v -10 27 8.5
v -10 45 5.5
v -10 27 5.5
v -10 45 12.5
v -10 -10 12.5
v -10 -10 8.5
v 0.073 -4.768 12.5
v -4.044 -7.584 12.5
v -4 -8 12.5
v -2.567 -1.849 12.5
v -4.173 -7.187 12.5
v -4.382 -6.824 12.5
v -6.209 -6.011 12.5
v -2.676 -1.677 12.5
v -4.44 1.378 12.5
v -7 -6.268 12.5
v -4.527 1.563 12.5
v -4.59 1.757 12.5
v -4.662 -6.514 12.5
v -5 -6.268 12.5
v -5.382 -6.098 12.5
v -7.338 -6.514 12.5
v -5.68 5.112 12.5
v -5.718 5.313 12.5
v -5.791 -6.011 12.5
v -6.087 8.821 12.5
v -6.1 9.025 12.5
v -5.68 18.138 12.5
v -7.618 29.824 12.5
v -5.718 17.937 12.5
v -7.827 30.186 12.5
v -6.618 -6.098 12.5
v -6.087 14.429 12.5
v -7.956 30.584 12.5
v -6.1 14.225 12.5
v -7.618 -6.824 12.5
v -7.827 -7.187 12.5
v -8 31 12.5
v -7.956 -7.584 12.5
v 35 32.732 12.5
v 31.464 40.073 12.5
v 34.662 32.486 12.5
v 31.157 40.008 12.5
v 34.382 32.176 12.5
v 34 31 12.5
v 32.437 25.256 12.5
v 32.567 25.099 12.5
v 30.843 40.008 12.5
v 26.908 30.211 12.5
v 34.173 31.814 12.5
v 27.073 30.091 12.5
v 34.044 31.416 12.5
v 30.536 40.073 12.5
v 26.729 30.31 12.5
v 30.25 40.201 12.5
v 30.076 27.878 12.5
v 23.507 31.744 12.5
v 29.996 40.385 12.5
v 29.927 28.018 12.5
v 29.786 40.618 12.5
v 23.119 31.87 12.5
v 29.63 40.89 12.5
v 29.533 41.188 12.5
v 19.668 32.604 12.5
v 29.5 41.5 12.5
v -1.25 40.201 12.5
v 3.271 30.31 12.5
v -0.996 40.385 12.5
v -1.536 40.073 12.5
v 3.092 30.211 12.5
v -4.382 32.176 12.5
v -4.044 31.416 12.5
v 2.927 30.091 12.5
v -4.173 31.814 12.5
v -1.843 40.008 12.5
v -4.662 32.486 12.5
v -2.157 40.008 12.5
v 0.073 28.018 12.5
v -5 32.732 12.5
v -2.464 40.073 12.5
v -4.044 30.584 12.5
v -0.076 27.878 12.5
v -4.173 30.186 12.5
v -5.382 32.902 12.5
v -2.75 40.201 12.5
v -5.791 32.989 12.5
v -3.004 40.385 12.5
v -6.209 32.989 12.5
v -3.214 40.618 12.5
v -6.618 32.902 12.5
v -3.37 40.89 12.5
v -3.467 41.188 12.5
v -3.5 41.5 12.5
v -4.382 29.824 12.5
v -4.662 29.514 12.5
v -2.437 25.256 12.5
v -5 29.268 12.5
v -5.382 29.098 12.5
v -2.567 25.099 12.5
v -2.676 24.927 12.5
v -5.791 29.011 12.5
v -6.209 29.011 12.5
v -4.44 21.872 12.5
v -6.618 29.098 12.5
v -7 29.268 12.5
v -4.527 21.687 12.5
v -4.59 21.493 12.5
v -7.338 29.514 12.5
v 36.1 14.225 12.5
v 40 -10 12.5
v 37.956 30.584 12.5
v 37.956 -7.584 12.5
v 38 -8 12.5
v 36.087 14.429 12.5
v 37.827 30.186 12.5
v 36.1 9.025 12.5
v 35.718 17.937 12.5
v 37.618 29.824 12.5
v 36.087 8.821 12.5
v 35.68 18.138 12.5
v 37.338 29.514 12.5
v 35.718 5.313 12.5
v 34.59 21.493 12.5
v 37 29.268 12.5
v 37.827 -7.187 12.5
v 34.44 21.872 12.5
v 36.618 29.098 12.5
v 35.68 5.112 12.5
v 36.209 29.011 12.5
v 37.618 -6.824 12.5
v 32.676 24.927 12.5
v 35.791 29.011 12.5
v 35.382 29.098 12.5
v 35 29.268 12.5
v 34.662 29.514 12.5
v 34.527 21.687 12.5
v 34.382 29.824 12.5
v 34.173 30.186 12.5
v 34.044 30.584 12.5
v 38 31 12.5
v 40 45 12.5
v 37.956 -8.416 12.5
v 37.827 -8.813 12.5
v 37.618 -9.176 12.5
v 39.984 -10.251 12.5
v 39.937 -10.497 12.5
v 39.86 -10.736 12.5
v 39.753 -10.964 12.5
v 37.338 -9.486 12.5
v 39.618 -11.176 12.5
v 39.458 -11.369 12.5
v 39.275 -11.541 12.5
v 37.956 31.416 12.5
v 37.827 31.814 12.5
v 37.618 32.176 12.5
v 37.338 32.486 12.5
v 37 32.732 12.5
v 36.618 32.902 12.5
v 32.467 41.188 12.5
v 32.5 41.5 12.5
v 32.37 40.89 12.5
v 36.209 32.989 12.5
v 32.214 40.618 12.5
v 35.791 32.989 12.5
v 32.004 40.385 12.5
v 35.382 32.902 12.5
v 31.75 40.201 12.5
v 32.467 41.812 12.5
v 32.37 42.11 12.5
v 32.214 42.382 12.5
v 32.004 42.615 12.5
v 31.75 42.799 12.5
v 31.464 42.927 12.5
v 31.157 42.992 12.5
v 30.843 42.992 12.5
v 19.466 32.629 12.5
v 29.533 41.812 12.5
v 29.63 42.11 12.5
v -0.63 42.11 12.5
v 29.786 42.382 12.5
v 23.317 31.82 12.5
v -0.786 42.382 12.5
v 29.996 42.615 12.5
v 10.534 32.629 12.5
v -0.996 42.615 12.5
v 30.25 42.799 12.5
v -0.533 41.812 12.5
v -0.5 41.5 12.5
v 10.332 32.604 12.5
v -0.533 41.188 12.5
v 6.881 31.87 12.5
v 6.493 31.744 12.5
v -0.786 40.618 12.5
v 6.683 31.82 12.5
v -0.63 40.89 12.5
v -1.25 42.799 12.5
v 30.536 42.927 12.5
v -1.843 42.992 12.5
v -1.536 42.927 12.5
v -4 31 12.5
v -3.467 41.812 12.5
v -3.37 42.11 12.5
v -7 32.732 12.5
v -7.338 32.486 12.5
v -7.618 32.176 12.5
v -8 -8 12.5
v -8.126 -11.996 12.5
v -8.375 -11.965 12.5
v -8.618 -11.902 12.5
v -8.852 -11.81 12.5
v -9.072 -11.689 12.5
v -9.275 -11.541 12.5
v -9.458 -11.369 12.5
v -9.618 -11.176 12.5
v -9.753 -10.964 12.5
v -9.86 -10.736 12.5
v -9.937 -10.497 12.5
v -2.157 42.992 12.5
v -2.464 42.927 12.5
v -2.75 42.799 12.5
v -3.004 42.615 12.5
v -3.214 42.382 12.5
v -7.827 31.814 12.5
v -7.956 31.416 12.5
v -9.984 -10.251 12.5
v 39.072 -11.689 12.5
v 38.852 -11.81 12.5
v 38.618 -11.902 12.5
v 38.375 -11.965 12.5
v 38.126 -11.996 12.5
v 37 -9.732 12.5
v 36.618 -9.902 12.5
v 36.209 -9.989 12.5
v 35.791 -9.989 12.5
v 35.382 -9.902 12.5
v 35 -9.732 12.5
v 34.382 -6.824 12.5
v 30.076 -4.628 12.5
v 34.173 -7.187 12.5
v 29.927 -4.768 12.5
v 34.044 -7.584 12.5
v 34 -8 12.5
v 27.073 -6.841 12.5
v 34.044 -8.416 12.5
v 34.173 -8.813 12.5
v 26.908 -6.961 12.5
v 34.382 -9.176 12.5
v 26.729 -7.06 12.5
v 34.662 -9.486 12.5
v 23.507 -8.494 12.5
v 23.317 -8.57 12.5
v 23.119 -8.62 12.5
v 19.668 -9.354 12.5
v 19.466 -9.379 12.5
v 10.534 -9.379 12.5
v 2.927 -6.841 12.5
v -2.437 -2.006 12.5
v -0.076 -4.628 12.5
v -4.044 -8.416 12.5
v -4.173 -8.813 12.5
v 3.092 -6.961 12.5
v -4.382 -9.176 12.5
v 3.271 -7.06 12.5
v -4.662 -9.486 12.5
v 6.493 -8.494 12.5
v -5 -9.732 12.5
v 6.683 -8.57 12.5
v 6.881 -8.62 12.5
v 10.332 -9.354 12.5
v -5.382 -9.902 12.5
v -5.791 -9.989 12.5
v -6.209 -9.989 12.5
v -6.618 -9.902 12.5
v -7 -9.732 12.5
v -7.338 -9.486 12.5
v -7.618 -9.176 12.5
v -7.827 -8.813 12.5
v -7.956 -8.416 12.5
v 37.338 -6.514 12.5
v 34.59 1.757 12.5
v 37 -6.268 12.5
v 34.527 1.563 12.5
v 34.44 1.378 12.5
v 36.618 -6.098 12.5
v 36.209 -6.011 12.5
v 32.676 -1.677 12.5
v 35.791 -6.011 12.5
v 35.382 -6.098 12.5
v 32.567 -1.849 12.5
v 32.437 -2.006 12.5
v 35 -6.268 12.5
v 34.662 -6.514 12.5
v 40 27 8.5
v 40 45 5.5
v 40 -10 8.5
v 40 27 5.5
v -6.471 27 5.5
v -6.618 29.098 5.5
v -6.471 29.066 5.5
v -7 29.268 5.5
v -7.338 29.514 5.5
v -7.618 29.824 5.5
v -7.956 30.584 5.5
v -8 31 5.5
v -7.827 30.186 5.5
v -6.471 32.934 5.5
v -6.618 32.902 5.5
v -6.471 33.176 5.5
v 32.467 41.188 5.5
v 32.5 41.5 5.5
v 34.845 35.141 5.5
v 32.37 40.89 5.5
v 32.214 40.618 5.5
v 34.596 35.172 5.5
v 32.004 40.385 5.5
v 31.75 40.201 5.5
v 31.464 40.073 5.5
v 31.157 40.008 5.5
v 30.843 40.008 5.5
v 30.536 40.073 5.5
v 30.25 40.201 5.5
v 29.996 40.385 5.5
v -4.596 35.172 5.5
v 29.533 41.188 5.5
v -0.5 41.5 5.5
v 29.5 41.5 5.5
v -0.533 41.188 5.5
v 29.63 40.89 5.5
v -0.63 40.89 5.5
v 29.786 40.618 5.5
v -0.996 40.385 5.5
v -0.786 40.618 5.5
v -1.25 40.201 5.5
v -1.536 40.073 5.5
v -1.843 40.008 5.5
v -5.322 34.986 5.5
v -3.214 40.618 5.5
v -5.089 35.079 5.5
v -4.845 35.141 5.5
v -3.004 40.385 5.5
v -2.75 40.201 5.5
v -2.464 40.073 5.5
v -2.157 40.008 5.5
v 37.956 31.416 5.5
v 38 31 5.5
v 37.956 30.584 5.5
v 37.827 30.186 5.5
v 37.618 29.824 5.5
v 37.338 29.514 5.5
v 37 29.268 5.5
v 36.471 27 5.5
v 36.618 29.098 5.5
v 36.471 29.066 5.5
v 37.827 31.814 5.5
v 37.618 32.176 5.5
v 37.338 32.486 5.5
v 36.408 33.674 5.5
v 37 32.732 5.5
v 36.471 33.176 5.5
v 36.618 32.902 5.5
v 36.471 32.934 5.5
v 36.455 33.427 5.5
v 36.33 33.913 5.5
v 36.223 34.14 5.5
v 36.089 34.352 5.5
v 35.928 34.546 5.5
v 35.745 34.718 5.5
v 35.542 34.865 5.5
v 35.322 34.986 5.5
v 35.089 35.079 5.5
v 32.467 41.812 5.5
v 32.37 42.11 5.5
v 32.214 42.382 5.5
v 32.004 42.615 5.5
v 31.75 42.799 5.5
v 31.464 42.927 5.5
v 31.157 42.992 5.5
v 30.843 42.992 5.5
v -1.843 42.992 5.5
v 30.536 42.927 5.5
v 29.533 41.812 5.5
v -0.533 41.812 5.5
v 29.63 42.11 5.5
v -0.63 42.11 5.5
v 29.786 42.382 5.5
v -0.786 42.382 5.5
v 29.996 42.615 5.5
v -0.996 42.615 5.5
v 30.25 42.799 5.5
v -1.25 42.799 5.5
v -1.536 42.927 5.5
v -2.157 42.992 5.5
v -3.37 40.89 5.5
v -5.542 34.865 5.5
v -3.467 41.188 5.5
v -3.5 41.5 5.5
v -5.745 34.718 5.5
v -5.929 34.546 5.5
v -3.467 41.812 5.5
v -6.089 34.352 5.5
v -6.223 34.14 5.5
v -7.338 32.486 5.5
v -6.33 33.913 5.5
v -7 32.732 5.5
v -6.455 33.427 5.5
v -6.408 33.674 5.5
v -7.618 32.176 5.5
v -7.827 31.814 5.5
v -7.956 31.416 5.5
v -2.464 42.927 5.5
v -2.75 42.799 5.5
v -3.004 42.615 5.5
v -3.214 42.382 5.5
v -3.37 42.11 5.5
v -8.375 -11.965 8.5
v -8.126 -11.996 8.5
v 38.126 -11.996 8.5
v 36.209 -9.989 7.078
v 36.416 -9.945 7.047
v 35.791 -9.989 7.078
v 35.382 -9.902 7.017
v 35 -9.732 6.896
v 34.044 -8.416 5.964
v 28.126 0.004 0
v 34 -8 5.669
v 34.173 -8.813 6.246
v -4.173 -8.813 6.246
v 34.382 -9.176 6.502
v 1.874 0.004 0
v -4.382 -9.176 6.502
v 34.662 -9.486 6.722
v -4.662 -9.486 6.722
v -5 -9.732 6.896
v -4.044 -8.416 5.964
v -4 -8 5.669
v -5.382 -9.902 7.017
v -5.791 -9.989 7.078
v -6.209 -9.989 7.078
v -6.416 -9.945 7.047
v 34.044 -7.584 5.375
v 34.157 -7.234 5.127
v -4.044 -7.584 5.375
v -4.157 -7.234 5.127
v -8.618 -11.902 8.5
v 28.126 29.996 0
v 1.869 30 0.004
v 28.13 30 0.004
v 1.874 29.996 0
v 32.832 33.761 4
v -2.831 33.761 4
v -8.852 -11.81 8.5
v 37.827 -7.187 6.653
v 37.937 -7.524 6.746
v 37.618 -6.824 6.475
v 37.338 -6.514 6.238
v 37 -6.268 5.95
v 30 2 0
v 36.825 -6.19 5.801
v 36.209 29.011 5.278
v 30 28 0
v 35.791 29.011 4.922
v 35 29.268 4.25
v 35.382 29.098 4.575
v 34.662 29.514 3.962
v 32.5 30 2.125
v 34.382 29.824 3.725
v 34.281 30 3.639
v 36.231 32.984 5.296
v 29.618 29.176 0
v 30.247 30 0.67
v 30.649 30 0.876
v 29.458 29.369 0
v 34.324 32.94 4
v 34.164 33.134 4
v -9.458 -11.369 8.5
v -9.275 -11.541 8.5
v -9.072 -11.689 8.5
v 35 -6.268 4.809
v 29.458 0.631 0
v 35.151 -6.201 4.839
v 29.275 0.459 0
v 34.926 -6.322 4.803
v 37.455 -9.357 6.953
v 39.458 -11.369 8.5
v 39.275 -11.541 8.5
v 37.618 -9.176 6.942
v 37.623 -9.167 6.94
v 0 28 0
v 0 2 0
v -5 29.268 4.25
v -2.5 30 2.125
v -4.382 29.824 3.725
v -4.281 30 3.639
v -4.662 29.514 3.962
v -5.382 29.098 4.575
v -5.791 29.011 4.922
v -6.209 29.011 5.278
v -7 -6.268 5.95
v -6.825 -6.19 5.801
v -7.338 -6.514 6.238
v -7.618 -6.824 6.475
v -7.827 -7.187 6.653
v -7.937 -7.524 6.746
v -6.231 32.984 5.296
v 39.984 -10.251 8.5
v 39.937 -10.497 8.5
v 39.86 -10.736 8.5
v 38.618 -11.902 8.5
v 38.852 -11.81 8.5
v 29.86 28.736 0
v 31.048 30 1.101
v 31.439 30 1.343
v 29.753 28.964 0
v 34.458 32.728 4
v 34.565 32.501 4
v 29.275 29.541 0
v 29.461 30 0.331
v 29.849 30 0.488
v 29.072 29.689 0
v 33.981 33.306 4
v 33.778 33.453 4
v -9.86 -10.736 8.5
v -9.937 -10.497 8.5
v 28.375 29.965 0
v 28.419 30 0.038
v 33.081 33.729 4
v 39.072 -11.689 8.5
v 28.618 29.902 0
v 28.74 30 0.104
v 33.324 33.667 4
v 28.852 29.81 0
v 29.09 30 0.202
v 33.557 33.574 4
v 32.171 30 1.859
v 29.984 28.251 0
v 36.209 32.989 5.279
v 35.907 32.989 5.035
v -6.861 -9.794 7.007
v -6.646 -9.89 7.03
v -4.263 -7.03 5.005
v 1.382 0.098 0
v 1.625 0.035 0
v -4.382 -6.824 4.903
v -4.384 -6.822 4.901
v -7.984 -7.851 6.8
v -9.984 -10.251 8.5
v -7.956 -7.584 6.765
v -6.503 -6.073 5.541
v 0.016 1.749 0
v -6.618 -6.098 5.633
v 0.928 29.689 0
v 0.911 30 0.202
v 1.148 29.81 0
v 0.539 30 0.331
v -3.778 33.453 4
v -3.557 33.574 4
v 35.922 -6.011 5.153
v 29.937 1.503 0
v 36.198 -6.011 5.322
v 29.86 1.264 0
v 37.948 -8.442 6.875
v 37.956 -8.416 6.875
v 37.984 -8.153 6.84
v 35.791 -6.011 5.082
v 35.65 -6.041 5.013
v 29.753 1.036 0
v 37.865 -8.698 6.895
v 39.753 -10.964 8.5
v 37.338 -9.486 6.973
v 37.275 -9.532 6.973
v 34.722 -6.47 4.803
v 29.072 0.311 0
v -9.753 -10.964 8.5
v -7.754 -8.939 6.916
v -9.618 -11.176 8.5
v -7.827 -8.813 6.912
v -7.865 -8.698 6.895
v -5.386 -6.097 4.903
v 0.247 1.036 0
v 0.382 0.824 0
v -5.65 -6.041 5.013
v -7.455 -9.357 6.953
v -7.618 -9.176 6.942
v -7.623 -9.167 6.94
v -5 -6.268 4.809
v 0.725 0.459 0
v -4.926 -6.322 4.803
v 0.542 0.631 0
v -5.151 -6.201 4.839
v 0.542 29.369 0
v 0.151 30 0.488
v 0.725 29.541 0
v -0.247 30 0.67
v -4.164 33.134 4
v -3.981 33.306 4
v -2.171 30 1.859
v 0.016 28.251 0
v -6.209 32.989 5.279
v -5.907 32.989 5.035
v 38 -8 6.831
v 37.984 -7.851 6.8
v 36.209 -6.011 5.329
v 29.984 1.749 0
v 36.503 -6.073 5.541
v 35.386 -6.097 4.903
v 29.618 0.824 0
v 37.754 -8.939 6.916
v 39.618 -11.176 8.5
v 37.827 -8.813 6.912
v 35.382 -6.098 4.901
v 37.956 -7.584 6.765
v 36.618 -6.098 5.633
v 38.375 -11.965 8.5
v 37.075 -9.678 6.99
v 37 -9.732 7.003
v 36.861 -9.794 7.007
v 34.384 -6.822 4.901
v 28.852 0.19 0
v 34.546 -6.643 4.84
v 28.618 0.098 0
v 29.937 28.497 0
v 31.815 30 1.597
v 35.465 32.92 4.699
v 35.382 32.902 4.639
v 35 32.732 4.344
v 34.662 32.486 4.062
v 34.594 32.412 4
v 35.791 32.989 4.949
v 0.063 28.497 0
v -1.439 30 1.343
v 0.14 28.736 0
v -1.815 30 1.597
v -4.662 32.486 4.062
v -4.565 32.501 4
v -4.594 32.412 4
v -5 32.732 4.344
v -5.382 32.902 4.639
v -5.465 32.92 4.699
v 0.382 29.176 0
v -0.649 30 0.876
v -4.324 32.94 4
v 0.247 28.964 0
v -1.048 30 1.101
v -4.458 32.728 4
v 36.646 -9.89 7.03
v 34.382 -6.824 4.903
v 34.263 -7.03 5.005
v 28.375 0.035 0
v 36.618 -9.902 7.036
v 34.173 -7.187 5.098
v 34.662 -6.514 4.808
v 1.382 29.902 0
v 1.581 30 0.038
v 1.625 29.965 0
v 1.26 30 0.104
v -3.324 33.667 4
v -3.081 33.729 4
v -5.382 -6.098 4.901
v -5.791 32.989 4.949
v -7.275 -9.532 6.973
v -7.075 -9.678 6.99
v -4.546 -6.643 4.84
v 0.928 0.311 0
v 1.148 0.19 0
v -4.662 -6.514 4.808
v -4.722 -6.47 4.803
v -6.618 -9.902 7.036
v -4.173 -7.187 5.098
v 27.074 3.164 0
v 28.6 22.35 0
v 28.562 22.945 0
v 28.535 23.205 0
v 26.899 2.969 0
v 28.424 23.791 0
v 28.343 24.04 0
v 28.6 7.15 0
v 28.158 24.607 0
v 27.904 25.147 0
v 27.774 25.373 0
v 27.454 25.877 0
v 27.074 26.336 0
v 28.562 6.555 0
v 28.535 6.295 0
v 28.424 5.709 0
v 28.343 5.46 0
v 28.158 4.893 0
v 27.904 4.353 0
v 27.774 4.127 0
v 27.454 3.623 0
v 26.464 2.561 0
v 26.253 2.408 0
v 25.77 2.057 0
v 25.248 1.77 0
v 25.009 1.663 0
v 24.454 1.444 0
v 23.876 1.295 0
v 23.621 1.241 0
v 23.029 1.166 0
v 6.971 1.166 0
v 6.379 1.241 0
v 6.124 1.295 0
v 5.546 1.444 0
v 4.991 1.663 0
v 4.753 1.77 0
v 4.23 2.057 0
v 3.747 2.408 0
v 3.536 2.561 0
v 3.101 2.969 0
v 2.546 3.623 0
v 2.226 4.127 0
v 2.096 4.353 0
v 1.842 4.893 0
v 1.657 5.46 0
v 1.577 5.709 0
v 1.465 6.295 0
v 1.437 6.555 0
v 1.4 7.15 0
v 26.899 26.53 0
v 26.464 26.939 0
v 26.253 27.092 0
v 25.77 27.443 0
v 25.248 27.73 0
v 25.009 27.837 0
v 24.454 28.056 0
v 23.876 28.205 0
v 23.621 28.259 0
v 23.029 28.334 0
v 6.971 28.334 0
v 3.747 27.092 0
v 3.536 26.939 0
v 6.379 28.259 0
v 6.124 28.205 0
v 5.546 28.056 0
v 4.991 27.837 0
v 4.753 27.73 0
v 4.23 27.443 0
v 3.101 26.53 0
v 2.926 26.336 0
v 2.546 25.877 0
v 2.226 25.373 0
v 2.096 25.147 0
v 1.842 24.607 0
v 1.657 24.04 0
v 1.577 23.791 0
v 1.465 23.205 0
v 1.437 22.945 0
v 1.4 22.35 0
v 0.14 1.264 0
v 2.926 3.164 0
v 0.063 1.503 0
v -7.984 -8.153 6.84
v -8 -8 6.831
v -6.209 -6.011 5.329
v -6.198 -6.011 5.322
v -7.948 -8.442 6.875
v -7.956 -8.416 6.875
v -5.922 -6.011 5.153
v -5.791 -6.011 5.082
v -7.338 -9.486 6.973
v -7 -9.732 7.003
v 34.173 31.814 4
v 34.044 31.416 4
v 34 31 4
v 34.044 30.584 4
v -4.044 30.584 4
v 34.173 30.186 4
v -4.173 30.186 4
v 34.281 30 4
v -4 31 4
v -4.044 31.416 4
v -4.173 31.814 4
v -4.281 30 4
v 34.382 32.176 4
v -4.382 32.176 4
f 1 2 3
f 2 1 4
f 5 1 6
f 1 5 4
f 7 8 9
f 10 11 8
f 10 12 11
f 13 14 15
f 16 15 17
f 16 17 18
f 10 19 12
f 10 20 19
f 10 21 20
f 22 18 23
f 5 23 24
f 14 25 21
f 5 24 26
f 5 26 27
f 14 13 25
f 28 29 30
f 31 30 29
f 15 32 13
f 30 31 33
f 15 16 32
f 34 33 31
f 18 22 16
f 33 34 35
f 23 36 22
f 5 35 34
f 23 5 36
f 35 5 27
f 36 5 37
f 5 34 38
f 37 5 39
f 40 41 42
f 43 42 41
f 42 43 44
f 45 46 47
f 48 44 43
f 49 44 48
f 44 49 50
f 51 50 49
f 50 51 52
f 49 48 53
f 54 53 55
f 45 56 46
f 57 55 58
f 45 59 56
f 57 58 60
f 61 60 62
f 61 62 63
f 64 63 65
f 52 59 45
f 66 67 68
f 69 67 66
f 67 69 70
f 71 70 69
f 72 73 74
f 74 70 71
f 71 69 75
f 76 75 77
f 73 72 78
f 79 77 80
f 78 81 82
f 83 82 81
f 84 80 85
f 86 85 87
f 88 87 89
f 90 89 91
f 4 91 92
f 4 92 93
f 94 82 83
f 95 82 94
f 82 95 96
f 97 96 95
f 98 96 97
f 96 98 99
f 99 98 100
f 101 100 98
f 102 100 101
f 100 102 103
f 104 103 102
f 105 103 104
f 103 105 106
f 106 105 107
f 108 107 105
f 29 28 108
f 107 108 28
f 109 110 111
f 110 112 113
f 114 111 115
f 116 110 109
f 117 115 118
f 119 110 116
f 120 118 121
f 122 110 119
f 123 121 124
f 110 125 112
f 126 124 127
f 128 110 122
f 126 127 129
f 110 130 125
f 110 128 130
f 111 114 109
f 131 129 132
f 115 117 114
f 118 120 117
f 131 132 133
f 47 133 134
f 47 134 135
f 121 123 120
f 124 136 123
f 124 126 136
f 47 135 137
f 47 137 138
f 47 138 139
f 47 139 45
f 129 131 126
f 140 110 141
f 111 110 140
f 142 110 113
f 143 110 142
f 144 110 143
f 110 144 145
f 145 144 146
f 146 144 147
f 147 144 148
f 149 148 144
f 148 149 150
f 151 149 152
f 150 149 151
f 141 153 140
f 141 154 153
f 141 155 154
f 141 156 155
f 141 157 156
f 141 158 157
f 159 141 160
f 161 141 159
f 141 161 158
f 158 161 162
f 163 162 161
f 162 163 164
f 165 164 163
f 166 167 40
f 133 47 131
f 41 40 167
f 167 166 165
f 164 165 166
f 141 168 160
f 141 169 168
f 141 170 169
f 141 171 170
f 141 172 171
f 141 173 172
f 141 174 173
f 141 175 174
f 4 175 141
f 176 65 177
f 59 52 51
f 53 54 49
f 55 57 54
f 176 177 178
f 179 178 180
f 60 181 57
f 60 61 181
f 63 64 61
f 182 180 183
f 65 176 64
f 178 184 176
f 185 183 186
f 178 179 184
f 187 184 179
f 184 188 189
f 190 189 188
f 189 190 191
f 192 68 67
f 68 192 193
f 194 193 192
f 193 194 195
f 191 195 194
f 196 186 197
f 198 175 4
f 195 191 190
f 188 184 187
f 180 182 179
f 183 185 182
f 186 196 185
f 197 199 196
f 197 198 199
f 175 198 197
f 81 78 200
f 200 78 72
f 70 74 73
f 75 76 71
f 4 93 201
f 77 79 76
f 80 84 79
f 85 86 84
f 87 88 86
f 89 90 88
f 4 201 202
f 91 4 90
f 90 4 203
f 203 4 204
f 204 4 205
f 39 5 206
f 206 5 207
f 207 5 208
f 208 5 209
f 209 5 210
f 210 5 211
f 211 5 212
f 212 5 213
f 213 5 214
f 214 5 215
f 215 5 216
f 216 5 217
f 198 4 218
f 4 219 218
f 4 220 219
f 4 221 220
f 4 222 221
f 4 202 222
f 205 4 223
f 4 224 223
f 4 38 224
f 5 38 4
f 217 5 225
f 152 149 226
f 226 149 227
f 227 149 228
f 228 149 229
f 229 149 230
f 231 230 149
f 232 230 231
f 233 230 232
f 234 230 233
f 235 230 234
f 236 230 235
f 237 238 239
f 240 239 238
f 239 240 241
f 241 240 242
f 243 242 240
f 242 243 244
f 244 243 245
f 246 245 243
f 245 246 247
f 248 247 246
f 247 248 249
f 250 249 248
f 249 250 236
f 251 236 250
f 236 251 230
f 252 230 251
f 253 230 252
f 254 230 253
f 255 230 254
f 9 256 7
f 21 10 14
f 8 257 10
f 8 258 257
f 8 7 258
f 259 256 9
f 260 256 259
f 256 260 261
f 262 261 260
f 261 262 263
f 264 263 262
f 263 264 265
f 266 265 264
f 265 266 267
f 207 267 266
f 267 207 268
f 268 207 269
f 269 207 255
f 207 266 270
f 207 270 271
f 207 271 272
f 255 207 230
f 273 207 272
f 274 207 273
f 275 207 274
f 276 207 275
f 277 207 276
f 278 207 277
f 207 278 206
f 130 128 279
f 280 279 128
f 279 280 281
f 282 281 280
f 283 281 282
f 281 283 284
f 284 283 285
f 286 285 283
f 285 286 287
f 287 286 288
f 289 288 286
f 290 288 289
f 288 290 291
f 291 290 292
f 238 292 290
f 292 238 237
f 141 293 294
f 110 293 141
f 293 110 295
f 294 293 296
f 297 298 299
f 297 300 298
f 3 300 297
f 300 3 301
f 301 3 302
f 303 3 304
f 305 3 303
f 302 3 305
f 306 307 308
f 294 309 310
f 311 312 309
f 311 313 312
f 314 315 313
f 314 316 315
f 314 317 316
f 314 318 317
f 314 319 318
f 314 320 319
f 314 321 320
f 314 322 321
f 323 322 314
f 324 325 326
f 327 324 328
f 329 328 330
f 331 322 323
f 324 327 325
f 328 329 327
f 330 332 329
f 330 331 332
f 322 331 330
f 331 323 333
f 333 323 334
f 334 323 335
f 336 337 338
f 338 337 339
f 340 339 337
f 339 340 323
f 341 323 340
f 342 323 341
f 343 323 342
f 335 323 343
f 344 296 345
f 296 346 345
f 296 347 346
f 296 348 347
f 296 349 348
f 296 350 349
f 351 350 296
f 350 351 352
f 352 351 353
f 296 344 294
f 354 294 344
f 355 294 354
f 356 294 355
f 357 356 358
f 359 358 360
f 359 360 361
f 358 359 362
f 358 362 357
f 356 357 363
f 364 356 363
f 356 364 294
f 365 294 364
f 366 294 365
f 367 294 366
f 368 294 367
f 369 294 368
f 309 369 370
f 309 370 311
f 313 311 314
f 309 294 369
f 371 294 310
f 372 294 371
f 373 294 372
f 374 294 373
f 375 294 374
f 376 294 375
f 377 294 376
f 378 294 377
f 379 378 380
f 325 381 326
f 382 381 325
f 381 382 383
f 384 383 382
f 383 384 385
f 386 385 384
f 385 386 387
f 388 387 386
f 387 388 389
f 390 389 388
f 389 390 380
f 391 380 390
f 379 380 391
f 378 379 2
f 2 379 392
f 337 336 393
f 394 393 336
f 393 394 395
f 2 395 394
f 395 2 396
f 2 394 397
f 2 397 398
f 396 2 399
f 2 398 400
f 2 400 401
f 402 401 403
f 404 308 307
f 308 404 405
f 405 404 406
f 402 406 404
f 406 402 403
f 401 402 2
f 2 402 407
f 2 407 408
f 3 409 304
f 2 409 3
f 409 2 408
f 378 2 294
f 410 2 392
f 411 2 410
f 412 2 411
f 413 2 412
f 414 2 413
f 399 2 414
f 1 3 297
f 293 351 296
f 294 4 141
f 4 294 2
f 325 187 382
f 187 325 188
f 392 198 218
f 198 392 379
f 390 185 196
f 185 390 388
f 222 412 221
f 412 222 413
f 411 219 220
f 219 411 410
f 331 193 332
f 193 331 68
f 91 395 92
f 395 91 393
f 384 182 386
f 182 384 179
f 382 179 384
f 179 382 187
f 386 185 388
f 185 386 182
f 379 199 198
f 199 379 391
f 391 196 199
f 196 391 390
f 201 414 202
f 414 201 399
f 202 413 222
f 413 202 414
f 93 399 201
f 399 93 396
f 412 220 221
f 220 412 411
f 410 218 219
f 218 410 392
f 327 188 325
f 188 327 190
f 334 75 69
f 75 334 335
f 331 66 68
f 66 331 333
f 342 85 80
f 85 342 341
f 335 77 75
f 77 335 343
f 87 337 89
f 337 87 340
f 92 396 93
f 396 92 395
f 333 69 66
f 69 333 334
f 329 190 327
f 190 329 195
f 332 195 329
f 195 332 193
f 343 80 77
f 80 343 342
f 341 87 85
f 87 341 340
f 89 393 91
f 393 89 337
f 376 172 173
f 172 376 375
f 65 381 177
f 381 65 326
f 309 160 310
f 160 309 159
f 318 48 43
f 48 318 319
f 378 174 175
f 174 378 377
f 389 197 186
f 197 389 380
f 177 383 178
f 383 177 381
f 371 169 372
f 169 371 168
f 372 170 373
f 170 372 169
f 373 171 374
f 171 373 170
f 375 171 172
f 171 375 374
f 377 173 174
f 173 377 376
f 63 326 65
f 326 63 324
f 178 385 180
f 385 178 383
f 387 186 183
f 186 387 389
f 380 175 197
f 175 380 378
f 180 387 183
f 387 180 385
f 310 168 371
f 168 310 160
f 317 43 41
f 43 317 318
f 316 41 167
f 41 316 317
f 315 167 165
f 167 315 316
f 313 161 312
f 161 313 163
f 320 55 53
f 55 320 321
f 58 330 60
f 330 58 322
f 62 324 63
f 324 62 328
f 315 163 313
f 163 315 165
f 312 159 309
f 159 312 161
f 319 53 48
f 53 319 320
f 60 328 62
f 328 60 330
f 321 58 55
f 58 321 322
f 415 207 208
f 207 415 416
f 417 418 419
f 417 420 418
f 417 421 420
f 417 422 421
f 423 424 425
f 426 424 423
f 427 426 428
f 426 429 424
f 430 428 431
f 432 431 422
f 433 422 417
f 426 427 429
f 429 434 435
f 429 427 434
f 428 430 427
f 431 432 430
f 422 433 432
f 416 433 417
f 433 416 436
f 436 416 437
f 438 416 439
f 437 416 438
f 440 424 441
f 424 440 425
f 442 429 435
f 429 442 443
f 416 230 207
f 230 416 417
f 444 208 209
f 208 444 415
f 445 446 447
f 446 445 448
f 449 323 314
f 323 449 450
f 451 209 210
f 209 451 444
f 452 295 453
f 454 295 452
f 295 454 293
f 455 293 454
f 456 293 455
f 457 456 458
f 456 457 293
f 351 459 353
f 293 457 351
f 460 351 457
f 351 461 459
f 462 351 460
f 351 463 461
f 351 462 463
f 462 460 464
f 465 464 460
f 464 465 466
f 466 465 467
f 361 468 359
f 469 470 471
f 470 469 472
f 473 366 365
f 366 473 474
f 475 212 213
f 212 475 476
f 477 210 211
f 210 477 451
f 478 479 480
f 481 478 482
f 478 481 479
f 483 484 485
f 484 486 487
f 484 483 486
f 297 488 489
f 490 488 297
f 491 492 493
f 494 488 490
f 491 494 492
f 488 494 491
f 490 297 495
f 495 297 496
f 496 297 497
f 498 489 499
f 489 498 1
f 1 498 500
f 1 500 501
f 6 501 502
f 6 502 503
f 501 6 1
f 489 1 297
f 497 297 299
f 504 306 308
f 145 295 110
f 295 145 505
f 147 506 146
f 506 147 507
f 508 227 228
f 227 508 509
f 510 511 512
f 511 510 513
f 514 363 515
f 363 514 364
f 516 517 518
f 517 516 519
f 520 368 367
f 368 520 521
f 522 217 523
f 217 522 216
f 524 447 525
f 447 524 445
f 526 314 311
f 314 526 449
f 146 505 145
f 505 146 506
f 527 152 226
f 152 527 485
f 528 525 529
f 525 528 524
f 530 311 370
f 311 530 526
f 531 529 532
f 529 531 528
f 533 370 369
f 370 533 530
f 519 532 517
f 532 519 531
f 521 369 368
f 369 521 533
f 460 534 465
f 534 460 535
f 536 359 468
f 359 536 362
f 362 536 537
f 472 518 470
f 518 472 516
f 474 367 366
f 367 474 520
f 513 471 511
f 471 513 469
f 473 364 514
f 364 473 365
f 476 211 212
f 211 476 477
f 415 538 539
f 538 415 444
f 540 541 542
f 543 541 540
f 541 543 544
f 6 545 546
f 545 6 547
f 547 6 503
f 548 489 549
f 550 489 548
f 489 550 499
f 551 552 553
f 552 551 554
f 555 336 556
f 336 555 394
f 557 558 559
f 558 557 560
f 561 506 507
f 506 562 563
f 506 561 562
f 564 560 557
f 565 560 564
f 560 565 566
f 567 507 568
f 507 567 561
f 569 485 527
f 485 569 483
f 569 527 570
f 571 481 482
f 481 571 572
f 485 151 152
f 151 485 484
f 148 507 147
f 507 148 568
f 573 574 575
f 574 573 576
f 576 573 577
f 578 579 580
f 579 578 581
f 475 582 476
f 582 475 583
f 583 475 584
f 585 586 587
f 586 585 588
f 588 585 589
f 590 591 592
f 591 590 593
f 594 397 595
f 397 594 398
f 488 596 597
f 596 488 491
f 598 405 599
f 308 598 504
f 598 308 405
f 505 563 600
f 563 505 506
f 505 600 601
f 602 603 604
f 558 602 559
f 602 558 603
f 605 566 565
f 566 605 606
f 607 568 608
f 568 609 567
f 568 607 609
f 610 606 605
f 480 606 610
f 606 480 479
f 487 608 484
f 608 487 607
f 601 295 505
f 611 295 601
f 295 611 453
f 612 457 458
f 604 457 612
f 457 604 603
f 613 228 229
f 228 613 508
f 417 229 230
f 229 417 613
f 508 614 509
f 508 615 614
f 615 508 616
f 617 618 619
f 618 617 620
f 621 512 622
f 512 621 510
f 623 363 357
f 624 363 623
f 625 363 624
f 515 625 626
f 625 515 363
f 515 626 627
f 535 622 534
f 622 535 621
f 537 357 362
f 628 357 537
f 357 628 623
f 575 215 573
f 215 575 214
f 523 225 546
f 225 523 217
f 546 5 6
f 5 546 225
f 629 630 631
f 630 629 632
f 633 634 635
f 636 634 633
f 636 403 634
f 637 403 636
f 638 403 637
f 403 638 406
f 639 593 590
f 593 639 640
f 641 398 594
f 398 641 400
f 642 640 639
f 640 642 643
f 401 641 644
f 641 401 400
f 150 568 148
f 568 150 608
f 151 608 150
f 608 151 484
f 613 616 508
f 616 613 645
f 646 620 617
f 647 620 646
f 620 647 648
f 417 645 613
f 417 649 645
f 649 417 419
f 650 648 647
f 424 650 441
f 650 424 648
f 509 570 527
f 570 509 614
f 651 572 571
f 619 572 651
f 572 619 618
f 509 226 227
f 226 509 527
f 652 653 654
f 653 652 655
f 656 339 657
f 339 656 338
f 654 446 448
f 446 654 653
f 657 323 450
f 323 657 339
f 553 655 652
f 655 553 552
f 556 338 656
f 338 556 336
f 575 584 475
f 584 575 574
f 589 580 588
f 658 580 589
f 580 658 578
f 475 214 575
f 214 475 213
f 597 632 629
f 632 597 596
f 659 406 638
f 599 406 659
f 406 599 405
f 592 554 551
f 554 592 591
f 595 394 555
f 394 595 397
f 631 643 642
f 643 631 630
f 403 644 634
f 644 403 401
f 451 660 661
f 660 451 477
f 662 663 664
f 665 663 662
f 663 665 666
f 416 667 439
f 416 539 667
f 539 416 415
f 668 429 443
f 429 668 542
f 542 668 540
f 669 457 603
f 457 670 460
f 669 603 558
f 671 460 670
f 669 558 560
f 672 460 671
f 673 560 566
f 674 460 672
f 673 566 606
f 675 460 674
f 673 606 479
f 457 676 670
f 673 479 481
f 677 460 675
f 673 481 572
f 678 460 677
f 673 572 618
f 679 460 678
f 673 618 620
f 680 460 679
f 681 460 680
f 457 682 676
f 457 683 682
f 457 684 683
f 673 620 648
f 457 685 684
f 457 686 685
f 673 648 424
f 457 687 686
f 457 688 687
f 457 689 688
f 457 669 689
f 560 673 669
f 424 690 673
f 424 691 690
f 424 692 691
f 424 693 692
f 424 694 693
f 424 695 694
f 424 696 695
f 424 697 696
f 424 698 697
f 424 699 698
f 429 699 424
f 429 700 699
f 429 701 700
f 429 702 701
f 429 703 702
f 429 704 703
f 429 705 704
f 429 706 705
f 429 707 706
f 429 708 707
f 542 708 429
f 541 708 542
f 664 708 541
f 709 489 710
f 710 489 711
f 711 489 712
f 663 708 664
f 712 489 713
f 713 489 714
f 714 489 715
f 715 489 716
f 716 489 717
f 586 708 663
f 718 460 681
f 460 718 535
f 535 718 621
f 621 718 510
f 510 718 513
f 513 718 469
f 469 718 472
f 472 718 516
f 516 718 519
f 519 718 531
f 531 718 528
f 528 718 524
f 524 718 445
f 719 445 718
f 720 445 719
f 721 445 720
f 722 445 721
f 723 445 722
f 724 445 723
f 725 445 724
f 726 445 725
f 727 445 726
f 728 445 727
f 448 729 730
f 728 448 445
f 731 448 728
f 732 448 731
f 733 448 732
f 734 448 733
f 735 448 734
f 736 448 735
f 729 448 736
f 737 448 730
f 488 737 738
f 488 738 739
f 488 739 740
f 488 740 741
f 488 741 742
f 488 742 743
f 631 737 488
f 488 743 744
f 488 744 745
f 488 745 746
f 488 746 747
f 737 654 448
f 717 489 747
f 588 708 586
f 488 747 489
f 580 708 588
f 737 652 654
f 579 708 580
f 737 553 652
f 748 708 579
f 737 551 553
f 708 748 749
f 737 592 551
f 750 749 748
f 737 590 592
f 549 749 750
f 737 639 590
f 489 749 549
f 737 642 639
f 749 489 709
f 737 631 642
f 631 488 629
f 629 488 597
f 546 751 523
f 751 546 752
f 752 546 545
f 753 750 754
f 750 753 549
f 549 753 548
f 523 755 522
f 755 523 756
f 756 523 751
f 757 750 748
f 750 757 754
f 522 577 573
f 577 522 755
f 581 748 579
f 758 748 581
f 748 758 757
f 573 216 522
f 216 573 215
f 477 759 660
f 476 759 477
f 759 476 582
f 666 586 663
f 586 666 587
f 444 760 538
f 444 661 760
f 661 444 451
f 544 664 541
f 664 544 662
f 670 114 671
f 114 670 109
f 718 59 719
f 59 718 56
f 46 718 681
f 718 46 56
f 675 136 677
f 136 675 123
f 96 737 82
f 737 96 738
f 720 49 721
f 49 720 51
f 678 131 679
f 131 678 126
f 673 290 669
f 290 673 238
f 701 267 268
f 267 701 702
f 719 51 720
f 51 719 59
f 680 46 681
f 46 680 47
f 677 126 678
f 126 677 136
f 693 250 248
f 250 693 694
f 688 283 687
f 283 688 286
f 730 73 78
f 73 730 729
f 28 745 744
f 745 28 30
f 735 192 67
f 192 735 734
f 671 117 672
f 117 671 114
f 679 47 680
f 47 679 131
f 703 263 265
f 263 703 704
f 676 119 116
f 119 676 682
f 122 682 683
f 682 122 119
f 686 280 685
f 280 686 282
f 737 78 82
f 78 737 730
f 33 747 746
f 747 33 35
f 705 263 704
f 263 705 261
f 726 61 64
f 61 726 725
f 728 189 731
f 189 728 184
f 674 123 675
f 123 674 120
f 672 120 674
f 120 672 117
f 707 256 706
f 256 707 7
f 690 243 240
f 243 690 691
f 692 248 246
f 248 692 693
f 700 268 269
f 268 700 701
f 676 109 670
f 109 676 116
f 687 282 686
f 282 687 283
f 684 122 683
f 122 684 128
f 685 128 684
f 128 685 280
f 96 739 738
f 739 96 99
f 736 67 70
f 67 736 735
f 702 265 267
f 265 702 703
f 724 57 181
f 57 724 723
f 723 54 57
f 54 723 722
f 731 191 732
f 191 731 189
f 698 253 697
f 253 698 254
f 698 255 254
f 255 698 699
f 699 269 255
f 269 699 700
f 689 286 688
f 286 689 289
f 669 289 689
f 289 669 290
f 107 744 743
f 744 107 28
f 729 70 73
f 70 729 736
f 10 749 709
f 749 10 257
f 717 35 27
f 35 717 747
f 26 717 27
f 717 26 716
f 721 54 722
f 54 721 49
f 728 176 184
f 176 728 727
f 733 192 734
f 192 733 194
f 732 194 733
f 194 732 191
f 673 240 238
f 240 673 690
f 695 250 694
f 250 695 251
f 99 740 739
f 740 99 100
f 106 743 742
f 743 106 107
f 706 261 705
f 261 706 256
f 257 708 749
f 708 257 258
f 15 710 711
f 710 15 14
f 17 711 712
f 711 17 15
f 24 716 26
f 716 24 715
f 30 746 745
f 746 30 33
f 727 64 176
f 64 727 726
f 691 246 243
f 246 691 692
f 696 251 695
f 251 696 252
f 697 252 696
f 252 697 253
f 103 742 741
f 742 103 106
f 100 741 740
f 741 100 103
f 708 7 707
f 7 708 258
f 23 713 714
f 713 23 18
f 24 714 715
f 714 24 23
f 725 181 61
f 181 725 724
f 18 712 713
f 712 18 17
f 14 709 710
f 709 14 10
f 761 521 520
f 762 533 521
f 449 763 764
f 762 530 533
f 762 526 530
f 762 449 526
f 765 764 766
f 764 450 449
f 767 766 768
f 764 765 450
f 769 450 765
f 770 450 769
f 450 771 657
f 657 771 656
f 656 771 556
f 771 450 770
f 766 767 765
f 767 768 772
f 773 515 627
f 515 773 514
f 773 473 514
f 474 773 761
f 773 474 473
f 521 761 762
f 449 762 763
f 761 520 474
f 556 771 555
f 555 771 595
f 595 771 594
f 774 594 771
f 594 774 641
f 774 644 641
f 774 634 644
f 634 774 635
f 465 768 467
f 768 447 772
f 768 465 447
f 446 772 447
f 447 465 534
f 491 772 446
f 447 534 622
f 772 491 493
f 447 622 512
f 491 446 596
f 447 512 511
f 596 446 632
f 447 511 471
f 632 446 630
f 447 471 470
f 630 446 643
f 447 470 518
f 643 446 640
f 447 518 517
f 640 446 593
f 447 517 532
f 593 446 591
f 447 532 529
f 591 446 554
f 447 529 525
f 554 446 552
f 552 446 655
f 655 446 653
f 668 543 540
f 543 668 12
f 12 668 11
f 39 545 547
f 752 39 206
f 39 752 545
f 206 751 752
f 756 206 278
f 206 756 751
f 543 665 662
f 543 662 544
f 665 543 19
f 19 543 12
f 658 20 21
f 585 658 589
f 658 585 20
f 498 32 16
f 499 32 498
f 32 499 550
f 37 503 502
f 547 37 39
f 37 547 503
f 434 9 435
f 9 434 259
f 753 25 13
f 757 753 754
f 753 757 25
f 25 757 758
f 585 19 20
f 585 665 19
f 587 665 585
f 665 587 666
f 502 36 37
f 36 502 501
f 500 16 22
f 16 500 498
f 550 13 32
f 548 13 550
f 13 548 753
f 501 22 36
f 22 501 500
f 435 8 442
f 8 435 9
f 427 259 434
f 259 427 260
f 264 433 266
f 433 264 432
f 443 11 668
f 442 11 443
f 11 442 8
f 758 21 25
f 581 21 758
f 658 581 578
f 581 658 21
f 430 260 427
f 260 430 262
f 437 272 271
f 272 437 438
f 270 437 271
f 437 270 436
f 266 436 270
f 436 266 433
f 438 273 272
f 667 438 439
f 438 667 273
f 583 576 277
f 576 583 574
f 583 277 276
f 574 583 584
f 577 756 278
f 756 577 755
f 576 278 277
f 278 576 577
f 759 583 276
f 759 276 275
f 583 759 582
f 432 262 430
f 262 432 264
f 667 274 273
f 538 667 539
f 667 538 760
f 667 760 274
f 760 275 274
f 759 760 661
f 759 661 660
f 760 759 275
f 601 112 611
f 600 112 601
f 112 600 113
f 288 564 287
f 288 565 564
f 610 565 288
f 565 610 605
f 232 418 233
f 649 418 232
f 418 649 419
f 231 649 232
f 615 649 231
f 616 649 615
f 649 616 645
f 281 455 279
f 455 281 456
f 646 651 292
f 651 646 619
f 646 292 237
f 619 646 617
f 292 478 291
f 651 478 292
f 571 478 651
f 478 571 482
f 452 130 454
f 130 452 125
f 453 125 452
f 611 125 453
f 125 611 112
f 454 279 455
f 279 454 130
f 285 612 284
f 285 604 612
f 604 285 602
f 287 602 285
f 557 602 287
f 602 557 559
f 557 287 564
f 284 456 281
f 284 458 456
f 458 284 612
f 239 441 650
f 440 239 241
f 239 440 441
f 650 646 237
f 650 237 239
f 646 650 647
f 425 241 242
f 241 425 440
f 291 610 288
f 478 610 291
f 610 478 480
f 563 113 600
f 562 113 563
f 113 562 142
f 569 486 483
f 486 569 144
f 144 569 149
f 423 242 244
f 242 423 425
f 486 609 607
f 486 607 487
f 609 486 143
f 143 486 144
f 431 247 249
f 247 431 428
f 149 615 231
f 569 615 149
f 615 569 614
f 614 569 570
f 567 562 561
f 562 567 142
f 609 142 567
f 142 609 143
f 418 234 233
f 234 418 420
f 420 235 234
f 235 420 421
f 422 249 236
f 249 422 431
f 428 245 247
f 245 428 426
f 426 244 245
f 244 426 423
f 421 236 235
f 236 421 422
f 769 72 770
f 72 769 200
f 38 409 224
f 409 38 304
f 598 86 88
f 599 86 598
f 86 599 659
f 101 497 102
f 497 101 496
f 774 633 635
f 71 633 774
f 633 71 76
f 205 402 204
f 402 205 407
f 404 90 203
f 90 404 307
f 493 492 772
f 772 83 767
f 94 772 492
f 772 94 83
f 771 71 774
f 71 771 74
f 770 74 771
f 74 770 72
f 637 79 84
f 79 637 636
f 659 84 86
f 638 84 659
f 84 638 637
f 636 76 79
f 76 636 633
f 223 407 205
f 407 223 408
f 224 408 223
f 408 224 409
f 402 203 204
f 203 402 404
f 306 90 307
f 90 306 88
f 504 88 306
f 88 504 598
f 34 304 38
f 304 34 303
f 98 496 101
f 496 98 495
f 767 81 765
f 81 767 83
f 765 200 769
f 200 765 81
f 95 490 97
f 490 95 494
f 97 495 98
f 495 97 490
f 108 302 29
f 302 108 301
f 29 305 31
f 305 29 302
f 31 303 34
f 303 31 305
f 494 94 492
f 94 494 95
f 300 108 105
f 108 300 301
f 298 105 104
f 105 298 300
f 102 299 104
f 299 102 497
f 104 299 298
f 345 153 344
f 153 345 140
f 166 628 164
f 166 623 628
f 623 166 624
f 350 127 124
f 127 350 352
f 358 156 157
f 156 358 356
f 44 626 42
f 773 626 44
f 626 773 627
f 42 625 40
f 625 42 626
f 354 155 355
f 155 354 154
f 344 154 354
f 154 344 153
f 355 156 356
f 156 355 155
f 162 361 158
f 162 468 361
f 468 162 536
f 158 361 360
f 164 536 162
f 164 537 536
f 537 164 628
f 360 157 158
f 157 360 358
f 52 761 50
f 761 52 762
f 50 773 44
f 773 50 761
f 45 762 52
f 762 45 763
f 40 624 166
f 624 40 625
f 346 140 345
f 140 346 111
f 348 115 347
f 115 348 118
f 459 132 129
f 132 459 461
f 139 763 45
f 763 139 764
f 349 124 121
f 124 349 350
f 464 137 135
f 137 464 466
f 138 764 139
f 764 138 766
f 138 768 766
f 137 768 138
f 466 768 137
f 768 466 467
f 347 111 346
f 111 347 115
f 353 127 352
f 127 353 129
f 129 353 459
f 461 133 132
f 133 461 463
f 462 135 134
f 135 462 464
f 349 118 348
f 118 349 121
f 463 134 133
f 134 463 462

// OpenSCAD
// file: measurement.scad
use <Write.scad>

// orientation = orientation of measurement line.  Values {"horizontal","vertical"}
// view = side of object.  Values {"front","left","right","back","top","bottom"}
// length = length of measurement
// text = measurement name (keep short)
// textpos = position of text above or below the line.  Values {"above","below"}
module measurement(orientation,view,length,text,textpos="below",text_size = 2,line_thickness=.15)
{
	if(orientation == "horizontal")
	{
		if(view == "front")
		{
			measurement_line(length,text,textpos,text_size,line_thickness);
		}
		else if(view == "back")
		{
			translate([length,0,0])
			rotate([0,0,180])
			measurement_line(length,text,textpos,text_size,line_thickness);
		}
		else if(view == "left")
		{
			translate([0,length,0])
			rotate([0,0,-90])
			measurement_line(length,text,textpos,text_size,line_thickness);
		}
		else if(view == "right")
		{
			rotate([0,0,90])
			measurement_line(length,text,textpos,text_size,line_thickness);
		}
		else if(view == "top")
		{
			rotate([-90,0,0])
			measurement_line(length,text,textpos,text_size,line_thickness);
		}
		else if(view == "bottom")
		{
			rotate([90,0,0])
			measurement_line(length,text,textpos,text_size,line_thickness);
		}
	}
	else if(orientation == "vertical")
	{
		if(view == "front")
		{
			rotate([0,-90,0])
			measurement_line(length,text,textpos,text_size,line_thickness);
		}
		else if(view == "back")
		{
			rotate([0,-90,180])
			measurement_line(length,text,textpos,text_size,line_thickness);
		}
		else if(view == "left")
		{
			rotate([0,-90,-90])
			measurement_line(length,text,textpos,text_size,line_thickness);
		}
		else if(view == "right")
		{
			rotate([0,-90,90])
			measurement_line(length,text,textpos,text_size,line_thickness);
		}
		else if(view == "top")
		{
			rotate([-90,0,90])
			measurement_line(length,text,textpos,text_size,line_thickness);
		}
		else if(view == "bottom")
		{
			translate([0,length,0])
			rotate([90,0,-90])
			measurement_line(length,text,textpos,text_size,line_thickness);
		}
	}
}

module measurement_line(length,text,textpos,text_size,line_thickness)
{
	color("Black")
	{
		cube([length,line_thickness,line_thickness]);
		translate([0,0,-text_size-.5]) 
			cube([line_thickness,line_thickness,text_size*2+1]);
		translate([length-line_thickness,0,-text_size-.5]) 
			cube([line_thickness,line_thickness,text_size*2+1]);

	if(textpos == "above")
	{
		translate([length/2,0,text_size]) rotate([90,0,0]) 
			write(str(text,"=", length),t=text_size,h=2,center=true);
	}
	else
	{
		translate([length/2,0,-text_size]) rotate([90,0,0]) 
			write(str(text,"=", length),t=text_size,h=2,center=true);
	}
	}
}
// main file
fan_size = 50;
fan_hole_size = 4;
fan_offset = 8.5;
fan_offset_y = 8;

chimera_size = 30;

wall_thickness = 2;

$fn=30;

use <measurement.scad>

module round_round_edges(size, radius)
{
    $fn=50;
    
    msize = [size[0]-radius*2, size[1]-radius*2, size[2]-radius*2];
    
    translate([radius, radius, radius])
    minkowski() {
        cube(size=[msize[0], msize[1], msize[2]]);
        sphere(r=radius);
    }
}

module cube_round_corners(size, radius) {
    $fn=50;
    
    msize = [size[0]-radius*2, size[1]-radius*2, size[2]];
    mheight = msize[2]-radius < 0 ? 1 : msize[2];
    mcheight = msize[2]-radius < 0 ? msize[2] : msize[2];
    
    translate([radius, radius, 0])
    minkowski() {
        cube(size=[msize[0], msize[1], 1]);
        cylinder(r=radius, h=mcheight);
    }
}

// chimera mount
difference() {
    union() {
        hull() {
            cube_round_corners([chimera_size, chimera_size, 3], 2);
            
            translate([-(fan_size-chimera_size)/2, -(fan_size-chimera_size)+fan_offset_y, fan_offset]) {
                cube_round_corners([fan_size, fan_size, 3], 2);
            }
        }
        
        translate([-25+chimera_size/2, chimera_size-3, 5.5]) {
            difference() {
                cube([50, 18, 7]);
                translate([8, 14.5, -1]) {
                    cylinder(h=9, r=1.5);
                }
                translate([41, 14.5, -1]) {
                    cylinder(h=9, r=1.5);
                }
            }
        }
    }
    
    hull() {
        translate([wall_thickness, wall_thickness, -1]) {
            cube_round_corners([chimera_size-wall_thickness*2, chimera_size-wall_thickness*2, 5], 5);
        }
        
        translate([(fan_size-chimera_size)/2+5, (fan_size-chimera_size)/2, 19]) {
            cylinder(r=fan_size/2, h=5);
        }
    }
    
    // remove everything that wouldn't fit under 
    // the extruder parts to see if it actually fits
    translate([-25+chimera_size/2, chimera_size+6, -1]) {
        cube([50, 9, 6.49]);
    }
    translate([-25+chimera_size/2, chimera_size, -1]) {
        cube([50, 6, 5]);
    }
    
    // Screw holes for fan
    
    // bottom left
    translate([wall_thickness-(fan_size-chimera_size)/2+2, fan_offset_y-2-2*wall_thickness-(fan_size-chimera_size)/2, 0]) {
        cylinder(h=15, r=fan_hole_size/2);
    }

    // bottom right
    translate([fan_size-chimera_size/2+1, fan_offset_y-2-2*wall_thickness-(fan_size-chimera_size)/2, 0]) {
        cylinder(h=15, r=fan_hole_size/2);
    }

    // top left
    translate([wall_thickness-(fan_size-chimera_size)/2+2, fan_offset_y-2+fan_size/2, 0]) {
        cylinder(h=25, r=fan_hole_size/2);
    }
    
    // top right
    translate([fan_size-chimera_size/2+1, fan_offset_y-2+fan_size/2, 0]) {
        cylinder(h=25, r=fan_hole_size/2);
    }
}
